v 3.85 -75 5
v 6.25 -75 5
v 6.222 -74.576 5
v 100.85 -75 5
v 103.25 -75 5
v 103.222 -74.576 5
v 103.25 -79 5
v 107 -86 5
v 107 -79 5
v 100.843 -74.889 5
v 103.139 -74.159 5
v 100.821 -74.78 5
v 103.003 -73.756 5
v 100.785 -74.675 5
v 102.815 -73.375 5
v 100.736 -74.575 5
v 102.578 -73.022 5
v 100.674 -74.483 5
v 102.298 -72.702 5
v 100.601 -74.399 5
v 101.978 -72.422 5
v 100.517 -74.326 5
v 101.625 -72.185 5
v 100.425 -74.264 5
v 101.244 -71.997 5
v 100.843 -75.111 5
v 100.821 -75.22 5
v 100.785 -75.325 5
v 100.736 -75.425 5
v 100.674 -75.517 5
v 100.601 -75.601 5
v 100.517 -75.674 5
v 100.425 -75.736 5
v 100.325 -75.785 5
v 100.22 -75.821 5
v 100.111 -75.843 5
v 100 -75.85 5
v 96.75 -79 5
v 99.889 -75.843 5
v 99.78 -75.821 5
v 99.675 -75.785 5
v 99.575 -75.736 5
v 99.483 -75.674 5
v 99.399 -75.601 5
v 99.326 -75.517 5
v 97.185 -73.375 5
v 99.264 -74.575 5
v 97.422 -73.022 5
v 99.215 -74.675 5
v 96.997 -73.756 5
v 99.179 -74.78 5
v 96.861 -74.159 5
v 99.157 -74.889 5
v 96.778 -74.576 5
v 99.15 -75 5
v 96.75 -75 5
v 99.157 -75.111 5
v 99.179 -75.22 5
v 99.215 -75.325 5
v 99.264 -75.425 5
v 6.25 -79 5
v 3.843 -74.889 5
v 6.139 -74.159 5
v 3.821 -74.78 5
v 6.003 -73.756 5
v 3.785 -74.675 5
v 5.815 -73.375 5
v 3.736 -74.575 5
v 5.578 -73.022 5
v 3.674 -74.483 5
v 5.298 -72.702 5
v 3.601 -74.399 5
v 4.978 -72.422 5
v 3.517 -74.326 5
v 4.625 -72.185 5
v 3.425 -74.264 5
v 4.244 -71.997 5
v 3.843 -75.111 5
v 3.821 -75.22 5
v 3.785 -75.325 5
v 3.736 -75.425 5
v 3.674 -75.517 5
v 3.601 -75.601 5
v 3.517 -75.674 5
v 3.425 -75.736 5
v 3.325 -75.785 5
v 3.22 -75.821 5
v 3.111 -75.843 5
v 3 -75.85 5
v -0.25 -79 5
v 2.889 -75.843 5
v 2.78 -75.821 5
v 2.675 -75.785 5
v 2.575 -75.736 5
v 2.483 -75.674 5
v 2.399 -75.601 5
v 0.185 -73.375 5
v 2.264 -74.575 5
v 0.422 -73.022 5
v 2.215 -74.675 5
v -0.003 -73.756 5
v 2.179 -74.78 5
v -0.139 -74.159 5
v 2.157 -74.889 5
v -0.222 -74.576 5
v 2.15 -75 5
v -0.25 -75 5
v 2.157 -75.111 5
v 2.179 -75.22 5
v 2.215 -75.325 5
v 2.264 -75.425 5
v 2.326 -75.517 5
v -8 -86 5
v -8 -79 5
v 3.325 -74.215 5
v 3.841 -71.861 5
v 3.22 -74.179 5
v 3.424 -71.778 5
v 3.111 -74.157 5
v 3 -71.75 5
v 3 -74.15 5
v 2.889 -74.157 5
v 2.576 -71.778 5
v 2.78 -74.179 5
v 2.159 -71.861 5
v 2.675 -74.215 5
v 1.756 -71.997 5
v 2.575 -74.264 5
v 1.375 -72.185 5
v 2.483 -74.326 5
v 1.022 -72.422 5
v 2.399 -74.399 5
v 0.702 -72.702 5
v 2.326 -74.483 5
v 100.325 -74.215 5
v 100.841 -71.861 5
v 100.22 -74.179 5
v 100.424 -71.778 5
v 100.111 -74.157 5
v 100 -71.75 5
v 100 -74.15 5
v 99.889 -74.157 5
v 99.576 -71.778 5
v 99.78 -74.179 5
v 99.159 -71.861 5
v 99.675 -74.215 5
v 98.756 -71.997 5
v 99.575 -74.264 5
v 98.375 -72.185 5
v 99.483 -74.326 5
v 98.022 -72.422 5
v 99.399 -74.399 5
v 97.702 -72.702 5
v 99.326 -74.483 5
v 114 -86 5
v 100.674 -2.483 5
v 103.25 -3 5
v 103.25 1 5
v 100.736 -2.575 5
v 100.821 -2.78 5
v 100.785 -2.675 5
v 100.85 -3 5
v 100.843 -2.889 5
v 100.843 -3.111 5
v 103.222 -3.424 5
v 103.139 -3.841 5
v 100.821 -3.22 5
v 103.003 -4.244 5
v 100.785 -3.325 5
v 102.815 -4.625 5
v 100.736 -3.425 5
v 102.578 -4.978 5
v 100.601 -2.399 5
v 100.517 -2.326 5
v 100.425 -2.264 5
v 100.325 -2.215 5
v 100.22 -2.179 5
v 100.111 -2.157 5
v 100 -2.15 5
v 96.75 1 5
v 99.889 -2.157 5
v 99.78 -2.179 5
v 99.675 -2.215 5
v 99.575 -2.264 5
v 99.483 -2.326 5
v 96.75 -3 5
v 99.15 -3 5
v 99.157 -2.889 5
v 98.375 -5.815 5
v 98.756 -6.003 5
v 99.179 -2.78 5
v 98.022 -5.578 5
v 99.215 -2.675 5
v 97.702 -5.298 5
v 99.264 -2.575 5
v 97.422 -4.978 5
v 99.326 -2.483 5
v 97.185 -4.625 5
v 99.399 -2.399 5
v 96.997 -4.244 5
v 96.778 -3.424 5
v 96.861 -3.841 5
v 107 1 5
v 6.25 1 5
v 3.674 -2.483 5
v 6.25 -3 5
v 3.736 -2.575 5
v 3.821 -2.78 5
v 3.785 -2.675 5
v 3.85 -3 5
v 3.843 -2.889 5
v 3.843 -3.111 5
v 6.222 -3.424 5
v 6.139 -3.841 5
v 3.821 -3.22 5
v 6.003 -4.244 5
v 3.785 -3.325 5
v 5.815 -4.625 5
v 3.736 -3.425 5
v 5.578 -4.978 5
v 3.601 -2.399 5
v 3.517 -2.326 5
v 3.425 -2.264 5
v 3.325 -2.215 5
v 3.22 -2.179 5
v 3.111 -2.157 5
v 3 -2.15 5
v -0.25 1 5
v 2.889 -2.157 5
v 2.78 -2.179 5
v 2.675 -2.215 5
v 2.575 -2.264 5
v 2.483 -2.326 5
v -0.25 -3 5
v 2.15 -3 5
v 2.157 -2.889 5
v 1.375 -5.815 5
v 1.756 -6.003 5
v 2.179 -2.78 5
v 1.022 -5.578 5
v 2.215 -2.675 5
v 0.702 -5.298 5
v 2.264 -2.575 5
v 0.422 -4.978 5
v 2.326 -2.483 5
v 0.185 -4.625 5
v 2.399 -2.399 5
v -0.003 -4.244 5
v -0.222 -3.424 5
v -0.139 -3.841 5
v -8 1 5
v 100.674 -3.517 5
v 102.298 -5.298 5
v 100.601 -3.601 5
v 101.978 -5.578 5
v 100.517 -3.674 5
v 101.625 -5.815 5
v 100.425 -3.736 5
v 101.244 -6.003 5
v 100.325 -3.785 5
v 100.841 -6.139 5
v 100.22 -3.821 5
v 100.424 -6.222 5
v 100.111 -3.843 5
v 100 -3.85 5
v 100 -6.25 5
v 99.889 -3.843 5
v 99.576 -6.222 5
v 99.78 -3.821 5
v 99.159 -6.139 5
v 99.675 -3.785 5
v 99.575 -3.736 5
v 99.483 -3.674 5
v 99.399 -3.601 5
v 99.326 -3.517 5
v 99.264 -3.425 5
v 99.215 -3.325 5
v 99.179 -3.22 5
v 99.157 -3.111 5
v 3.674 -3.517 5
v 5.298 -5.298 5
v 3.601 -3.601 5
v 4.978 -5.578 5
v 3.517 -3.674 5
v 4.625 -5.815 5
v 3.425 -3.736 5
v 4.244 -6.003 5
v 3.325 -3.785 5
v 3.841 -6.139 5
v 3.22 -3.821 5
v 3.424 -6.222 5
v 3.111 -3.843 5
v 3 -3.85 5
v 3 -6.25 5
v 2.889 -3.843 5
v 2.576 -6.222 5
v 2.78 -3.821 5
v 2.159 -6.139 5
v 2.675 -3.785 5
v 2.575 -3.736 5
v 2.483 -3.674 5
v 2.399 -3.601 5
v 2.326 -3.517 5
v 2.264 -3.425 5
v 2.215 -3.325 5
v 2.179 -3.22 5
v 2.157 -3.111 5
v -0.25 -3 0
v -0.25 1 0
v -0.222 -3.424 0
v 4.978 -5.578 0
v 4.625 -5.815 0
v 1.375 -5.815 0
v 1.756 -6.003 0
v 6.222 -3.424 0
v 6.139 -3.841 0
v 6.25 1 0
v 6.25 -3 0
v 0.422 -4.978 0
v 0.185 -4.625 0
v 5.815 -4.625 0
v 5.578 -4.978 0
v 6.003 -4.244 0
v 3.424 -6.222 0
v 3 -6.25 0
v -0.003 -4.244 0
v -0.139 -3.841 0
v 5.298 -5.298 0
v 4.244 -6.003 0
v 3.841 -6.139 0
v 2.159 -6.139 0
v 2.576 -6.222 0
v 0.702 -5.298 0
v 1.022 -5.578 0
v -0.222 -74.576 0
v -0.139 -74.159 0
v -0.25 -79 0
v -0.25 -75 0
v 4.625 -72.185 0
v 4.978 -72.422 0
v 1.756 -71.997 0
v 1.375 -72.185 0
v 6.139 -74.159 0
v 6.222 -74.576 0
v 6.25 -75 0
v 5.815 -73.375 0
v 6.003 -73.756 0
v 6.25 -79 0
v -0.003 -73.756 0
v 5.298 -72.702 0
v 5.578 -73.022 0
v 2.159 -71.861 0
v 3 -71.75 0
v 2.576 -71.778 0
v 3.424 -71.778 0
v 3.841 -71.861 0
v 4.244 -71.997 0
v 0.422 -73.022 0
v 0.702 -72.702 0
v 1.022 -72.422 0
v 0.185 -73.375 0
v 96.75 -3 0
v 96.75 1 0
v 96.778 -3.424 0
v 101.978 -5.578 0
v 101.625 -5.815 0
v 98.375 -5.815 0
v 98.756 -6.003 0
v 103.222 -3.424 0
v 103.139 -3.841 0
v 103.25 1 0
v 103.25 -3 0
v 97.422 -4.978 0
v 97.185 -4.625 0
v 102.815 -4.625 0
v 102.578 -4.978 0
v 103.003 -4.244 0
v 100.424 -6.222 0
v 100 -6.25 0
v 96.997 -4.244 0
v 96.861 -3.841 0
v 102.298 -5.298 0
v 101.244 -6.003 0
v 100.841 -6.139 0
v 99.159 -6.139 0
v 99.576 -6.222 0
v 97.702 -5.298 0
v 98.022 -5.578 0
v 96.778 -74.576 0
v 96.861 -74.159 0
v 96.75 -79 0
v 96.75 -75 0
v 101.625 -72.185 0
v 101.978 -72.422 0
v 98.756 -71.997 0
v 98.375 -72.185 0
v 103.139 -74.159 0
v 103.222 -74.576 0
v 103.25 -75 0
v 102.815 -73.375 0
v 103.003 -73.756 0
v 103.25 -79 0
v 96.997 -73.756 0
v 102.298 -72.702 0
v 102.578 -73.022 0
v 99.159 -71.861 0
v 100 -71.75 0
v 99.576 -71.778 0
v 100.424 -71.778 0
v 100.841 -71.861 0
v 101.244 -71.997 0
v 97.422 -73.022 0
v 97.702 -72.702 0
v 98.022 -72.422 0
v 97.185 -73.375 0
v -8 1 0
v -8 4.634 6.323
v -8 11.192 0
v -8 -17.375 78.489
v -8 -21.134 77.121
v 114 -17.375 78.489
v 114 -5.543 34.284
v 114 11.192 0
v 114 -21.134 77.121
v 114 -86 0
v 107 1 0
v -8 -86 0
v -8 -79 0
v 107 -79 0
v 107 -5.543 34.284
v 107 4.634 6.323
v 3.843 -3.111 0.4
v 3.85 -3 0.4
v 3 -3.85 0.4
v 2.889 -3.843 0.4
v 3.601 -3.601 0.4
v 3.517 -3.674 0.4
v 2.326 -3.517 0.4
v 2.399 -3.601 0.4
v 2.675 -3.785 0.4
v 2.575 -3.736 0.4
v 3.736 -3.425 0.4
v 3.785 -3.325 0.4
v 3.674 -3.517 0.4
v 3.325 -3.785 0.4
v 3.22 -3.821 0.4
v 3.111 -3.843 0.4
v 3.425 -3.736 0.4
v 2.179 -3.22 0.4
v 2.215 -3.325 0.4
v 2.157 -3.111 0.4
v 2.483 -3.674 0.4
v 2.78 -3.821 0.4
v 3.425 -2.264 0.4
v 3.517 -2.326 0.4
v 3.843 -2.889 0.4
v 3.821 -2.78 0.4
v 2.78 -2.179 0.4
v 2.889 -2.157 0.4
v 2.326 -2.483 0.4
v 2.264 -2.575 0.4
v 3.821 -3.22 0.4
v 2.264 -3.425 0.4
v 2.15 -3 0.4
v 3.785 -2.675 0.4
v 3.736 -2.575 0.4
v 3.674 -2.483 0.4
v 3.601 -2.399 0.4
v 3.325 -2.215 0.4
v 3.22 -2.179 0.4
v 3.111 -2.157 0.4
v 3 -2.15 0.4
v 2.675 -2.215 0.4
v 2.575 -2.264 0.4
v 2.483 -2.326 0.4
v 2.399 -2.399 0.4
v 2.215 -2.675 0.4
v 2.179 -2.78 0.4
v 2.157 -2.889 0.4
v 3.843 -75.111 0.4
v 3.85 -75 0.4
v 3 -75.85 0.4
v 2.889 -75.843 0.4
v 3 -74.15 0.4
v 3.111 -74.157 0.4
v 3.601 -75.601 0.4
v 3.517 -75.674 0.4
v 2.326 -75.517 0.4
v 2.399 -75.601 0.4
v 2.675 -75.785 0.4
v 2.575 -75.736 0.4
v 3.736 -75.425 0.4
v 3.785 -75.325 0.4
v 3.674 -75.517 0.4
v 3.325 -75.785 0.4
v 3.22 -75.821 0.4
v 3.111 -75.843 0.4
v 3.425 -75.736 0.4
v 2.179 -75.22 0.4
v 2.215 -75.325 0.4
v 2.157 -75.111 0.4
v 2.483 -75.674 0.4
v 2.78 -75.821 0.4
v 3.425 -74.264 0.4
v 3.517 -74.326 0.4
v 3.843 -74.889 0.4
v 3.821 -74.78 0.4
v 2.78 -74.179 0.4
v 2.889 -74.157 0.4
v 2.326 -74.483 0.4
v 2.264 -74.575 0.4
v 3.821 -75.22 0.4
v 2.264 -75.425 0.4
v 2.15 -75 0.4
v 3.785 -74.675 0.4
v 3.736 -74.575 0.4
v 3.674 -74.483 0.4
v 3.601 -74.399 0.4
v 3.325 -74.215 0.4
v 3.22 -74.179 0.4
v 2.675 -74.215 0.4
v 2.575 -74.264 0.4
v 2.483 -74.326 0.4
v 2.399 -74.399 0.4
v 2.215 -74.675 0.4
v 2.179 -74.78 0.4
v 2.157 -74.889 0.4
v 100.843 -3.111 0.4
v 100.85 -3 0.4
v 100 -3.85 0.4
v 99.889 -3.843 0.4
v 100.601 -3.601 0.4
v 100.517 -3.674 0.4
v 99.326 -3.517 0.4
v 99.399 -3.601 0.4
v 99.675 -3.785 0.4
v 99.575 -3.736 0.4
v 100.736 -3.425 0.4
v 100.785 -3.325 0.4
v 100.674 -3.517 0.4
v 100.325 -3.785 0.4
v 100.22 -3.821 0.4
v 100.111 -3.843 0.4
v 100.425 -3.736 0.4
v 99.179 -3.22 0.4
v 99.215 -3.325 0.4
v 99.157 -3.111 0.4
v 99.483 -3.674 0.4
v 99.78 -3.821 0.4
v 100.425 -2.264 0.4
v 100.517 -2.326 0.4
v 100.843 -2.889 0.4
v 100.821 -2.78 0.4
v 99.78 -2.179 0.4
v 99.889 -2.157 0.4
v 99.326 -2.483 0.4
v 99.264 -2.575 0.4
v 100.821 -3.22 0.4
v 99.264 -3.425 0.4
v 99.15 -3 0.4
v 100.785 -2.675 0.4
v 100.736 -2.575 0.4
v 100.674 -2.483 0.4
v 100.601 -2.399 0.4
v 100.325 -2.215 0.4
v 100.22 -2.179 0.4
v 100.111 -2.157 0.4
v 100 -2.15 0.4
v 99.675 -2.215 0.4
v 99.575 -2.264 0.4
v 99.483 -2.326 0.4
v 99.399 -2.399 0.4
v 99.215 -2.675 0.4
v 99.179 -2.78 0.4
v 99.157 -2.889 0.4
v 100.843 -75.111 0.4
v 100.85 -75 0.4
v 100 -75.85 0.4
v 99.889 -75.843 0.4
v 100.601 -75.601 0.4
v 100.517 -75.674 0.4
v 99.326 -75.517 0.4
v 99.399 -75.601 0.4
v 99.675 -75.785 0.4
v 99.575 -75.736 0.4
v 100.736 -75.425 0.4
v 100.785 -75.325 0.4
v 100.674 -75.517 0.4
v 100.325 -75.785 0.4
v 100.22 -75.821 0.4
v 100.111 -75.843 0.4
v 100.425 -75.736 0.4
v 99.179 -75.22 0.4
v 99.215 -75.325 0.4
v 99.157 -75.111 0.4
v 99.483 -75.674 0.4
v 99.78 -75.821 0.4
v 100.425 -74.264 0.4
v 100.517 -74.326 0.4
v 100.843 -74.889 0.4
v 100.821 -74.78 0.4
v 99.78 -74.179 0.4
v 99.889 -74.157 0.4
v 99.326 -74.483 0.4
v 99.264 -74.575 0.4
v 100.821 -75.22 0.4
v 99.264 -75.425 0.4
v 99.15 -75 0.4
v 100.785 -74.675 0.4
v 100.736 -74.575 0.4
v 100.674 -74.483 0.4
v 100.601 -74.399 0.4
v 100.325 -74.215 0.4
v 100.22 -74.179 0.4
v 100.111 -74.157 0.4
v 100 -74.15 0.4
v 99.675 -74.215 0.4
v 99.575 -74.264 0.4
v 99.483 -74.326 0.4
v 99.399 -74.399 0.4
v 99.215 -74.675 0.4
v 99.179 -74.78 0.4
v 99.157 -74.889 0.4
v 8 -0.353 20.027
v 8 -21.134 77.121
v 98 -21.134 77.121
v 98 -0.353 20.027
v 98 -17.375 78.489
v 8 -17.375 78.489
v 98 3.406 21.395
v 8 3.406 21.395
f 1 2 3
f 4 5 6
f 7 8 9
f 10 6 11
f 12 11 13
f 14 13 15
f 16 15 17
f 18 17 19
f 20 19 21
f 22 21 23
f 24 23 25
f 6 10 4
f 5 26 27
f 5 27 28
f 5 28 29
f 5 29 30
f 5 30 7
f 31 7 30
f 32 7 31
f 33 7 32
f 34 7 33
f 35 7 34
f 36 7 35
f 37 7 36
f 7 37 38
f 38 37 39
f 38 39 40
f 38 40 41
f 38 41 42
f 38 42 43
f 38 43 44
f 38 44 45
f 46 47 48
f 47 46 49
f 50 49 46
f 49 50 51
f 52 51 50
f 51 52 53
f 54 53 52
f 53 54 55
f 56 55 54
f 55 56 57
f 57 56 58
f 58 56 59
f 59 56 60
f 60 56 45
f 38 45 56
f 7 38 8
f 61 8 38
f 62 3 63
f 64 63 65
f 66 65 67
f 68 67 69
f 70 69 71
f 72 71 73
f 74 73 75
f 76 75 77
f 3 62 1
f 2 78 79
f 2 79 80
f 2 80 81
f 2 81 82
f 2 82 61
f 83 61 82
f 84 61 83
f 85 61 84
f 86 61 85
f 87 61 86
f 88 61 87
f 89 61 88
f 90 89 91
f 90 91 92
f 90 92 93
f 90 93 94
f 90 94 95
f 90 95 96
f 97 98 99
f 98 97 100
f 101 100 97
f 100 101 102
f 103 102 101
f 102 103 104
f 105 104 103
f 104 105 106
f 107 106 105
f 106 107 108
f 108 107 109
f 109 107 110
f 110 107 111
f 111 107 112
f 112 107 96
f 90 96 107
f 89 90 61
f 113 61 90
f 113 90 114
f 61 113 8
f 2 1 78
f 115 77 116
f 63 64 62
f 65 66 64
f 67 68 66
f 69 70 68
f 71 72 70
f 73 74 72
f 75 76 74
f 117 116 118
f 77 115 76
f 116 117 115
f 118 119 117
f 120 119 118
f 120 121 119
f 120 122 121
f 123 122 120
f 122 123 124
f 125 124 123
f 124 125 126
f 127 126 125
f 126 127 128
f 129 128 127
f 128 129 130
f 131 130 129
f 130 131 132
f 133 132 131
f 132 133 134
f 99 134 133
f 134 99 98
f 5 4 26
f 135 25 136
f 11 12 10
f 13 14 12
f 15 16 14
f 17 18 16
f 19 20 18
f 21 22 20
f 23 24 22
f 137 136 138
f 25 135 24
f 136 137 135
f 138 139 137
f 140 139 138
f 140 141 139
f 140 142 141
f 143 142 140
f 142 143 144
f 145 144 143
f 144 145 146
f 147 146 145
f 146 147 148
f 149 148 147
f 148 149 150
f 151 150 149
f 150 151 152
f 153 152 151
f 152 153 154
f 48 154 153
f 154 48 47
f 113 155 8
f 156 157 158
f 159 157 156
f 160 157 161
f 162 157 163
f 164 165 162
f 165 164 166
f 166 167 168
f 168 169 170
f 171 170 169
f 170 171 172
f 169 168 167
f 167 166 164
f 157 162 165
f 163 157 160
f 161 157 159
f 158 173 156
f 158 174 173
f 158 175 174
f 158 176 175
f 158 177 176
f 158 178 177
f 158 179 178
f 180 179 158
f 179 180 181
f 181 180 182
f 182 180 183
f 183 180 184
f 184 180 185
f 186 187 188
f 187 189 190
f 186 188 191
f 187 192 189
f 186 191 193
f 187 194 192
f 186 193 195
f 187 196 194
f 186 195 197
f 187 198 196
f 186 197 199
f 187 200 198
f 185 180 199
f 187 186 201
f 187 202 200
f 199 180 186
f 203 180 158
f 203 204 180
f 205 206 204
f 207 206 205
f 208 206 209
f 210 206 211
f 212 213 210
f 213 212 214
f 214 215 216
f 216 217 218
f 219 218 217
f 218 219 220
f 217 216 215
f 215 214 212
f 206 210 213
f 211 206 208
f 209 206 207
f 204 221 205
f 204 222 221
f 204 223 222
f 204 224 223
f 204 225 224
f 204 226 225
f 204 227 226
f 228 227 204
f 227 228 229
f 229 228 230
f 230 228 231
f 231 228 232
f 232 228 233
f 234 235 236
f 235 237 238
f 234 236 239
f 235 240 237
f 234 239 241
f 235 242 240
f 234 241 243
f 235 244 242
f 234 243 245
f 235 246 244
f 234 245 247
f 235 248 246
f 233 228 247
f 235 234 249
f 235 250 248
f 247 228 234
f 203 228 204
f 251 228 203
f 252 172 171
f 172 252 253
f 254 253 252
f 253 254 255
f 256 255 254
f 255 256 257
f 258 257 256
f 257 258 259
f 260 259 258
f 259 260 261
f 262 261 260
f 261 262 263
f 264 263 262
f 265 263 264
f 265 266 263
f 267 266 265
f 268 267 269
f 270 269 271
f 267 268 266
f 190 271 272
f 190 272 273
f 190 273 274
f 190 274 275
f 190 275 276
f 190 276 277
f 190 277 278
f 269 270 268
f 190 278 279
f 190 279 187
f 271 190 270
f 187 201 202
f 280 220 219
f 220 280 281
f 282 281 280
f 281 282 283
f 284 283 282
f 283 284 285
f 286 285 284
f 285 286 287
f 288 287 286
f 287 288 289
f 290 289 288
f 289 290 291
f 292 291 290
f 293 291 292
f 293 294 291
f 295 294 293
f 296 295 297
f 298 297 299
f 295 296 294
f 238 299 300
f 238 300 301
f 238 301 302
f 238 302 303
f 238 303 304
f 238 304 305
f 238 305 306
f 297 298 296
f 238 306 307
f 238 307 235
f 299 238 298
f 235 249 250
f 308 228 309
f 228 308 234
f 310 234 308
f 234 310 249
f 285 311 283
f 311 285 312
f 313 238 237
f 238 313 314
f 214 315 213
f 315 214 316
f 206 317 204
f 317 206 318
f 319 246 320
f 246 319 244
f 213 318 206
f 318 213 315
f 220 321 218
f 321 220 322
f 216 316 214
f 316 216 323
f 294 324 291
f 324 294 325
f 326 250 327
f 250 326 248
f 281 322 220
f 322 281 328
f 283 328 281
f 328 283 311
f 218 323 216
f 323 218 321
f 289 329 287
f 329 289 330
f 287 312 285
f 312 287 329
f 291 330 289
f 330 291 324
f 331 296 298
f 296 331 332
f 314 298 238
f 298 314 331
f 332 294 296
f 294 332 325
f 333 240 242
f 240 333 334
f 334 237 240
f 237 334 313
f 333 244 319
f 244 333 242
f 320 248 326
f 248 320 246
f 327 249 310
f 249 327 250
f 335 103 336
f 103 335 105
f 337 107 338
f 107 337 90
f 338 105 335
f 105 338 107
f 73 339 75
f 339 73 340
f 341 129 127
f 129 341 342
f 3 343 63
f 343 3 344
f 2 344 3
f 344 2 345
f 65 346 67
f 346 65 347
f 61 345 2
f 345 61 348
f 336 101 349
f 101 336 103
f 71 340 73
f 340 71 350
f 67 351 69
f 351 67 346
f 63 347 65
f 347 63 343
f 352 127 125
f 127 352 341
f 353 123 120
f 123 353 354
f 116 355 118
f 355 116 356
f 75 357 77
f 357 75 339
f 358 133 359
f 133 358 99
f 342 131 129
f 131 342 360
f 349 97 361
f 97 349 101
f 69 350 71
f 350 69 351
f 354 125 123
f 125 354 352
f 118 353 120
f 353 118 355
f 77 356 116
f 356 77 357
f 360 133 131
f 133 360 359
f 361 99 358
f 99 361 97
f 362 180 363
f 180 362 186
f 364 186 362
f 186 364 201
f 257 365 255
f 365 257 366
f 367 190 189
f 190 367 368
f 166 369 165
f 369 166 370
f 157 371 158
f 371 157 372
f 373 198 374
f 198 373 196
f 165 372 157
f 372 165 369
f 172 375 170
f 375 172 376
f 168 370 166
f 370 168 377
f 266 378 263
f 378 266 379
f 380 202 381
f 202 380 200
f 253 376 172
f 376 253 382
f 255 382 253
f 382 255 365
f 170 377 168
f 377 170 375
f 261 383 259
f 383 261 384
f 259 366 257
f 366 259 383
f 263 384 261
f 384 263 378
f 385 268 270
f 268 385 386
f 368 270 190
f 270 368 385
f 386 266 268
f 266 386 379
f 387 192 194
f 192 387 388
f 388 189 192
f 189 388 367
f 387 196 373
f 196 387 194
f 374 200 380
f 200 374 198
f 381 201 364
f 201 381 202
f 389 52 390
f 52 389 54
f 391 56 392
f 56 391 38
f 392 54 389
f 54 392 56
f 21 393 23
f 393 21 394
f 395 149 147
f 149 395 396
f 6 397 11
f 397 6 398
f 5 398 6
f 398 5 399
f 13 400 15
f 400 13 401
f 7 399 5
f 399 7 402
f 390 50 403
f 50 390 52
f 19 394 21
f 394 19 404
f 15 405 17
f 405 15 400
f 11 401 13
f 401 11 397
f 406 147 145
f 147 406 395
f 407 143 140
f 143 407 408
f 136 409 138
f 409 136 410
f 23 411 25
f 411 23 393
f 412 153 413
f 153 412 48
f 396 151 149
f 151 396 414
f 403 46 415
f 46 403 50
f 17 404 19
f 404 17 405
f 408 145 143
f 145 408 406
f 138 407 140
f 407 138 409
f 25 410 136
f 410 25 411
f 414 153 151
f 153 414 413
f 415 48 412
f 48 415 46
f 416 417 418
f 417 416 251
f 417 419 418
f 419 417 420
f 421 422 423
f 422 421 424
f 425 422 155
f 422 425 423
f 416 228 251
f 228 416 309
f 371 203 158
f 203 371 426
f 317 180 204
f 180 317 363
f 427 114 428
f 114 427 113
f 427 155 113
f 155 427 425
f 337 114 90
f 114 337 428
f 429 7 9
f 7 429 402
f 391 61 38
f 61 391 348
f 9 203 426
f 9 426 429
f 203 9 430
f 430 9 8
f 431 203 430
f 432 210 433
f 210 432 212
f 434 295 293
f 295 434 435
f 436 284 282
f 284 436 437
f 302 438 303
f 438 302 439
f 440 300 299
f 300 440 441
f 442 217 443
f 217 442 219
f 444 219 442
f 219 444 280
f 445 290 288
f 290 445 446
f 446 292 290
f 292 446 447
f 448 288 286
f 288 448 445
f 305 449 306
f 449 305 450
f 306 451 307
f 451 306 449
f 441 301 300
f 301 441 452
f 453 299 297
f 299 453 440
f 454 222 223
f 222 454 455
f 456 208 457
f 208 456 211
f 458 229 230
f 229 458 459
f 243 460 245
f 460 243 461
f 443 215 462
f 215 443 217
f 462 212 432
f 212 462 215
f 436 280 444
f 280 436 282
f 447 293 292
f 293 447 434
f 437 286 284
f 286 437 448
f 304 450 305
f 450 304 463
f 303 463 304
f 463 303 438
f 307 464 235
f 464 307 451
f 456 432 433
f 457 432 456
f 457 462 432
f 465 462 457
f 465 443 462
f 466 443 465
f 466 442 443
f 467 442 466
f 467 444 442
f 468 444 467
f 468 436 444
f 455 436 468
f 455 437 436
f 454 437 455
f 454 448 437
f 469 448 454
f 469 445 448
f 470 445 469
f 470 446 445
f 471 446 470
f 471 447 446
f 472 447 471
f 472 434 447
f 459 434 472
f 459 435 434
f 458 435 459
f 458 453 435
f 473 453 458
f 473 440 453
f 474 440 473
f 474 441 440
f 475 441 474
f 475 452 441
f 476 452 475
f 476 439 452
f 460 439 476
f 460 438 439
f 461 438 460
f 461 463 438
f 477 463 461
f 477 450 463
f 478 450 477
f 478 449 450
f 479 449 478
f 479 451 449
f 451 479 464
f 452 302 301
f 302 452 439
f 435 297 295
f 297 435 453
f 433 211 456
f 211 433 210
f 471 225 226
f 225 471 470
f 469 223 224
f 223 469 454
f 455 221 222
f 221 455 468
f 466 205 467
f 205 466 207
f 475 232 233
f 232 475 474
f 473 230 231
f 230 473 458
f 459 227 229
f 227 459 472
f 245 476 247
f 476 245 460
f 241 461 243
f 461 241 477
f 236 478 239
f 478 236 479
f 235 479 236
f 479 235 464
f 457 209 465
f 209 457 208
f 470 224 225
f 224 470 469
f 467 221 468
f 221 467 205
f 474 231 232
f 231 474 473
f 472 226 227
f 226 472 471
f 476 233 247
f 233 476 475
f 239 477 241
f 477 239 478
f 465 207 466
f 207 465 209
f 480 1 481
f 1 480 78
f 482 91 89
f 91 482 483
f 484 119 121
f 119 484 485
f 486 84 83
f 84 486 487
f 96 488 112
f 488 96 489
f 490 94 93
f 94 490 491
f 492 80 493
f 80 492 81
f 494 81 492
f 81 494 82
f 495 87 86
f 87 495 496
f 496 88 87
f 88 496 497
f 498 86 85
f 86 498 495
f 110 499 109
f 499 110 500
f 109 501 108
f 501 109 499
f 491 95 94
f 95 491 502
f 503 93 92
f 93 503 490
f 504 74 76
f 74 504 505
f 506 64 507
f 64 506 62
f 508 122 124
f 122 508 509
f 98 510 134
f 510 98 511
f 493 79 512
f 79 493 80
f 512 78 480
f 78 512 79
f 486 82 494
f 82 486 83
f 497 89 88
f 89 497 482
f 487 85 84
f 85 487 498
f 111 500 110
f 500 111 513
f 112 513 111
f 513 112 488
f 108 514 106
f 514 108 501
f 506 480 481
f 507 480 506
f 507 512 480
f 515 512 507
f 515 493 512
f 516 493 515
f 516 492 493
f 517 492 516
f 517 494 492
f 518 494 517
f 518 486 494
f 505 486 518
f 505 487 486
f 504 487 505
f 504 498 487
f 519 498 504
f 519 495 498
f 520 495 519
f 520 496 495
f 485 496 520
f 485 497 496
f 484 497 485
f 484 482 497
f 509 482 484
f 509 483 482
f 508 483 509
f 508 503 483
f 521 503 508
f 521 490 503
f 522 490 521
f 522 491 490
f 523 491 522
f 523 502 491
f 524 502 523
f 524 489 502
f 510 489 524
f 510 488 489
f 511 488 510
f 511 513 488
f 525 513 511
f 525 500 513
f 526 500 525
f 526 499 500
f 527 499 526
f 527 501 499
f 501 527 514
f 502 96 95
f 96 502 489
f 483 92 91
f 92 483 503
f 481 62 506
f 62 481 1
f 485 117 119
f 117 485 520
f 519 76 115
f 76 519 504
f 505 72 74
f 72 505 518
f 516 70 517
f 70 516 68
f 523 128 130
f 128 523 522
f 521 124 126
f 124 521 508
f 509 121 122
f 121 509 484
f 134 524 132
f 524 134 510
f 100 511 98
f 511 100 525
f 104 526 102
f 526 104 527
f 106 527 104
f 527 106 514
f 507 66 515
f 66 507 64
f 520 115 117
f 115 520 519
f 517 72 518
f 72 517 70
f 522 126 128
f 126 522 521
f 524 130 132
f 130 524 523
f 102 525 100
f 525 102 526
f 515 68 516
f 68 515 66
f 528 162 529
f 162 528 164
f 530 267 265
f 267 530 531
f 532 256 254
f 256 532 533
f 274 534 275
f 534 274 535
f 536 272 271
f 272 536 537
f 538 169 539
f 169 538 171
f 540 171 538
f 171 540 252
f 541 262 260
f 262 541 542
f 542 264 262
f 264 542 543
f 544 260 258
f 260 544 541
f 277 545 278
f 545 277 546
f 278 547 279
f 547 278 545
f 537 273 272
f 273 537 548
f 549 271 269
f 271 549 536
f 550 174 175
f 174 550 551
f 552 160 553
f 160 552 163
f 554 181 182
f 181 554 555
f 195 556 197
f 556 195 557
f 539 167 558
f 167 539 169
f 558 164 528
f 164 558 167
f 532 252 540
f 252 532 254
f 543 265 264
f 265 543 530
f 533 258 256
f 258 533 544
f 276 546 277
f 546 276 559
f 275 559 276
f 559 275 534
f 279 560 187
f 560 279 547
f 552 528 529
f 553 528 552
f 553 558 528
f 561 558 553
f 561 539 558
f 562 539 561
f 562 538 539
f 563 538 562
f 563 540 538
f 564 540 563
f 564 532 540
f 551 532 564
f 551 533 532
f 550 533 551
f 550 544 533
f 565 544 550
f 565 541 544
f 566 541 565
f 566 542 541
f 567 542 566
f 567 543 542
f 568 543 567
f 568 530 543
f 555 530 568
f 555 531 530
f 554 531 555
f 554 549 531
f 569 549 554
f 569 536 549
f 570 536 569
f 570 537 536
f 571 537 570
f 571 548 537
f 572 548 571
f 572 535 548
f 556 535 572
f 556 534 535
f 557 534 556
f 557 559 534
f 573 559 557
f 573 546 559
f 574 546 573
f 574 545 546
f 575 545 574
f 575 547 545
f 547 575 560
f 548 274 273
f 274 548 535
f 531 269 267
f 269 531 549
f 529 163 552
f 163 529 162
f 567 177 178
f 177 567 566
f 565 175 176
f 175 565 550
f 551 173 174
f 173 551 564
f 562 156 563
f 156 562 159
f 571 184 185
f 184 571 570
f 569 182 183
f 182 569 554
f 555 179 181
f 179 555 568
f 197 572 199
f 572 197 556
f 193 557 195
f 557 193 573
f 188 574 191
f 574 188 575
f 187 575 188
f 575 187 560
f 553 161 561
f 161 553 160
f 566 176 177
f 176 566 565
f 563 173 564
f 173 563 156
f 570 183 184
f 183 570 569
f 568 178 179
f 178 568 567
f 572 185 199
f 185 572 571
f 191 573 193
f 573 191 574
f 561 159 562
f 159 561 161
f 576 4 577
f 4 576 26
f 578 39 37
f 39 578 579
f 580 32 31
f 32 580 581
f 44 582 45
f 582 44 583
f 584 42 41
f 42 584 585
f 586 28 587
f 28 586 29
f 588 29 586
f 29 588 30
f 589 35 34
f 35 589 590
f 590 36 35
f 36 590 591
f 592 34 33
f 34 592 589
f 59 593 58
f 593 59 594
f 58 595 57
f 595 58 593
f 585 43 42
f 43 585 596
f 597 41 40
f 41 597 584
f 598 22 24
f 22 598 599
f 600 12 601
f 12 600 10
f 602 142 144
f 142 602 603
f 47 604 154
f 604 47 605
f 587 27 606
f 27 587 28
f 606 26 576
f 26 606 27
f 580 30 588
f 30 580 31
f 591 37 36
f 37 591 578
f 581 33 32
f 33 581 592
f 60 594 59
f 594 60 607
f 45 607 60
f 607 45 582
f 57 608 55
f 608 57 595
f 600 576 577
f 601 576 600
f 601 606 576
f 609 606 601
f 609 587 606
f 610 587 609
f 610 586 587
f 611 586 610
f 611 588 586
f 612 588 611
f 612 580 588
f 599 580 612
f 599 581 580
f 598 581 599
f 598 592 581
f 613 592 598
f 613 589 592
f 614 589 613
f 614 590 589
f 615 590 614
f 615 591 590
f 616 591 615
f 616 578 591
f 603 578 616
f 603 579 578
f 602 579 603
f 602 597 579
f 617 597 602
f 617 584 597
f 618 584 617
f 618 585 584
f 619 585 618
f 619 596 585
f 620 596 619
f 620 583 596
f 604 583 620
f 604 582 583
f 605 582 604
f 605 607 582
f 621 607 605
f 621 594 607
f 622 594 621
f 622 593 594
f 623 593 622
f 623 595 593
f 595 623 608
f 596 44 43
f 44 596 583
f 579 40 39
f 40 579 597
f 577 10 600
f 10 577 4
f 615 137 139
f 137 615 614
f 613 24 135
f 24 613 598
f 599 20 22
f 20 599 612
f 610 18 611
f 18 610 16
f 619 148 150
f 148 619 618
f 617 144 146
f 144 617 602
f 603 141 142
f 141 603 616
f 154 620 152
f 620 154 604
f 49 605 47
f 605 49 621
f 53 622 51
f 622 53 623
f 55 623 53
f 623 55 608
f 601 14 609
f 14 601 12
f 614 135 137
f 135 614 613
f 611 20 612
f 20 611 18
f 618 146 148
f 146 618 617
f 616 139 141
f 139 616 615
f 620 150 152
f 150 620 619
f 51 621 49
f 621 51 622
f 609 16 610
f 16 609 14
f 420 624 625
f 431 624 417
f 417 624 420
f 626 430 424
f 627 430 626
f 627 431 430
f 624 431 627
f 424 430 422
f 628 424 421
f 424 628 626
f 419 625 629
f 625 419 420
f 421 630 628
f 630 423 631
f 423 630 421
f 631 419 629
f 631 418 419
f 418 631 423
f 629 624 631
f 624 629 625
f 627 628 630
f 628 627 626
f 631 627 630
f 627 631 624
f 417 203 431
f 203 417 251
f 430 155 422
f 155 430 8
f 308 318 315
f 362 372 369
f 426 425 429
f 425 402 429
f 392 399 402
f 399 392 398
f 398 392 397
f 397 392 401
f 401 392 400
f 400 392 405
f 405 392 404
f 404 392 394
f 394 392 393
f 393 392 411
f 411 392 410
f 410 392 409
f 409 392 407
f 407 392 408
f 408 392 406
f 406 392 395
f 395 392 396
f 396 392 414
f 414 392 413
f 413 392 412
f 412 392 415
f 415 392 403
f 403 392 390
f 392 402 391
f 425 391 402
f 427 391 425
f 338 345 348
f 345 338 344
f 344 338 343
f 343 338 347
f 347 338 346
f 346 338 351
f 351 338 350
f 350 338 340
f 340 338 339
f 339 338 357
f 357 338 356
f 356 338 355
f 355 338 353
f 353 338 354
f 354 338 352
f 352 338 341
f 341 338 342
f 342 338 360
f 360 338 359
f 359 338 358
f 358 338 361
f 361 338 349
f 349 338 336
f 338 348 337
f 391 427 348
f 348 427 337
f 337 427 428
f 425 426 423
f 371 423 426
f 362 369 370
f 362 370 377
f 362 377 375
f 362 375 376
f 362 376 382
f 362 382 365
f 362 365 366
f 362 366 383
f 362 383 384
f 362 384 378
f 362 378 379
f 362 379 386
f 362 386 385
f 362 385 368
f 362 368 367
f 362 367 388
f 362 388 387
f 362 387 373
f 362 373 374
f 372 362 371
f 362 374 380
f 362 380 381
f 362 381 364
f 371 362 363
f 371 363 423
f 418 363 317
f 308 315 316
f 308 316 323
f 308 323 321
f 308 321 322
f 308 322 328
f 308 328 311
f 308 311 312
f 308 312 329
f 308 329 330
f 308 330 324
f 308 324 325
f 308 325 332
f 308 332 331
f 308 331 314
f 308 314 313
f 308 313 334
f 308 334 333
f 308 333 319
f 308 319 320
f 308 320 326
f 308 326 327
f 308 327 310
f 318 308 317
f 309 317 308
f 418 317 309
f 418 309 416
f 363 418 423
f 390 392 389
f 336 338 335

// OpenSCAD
// A desk stand for the Pimoroni Inky Impression 4.0" (Spectra 6).
//
// A thin frame around the panel, leaning back on a base. The panel screws
// on from behind through its four M2 corner holes into the frame's corner
// tabs; the tabs cover only the corners, which are clear (the screen starts
// 7 mm in). Everywhere else the frame stays outside the board's outline, so
// whatever is on the back (the Hack3r, a ribbon plug) can't hit it. The
// buttons' side is left open, and the other side leaves room for the
// display's ribbon, which bends around that edge.
//
// Dimensions from Pimoroni's drawing: board 103 x 78 mm, holes 3 mm in from
// each corner, buttons on the left edge 17.85-60.15 mm up from the bottom.
//
// Printing: `layout = "print"` (the default, what the STL is) lies on the
// frame's front face; everything else rises from it, leaning at most `tilt`
// past vertical, so it needs no supports. `layout = "desk"` shows it standing.
// Screws: four M2 x 6 mm, from behind; they cut their own thread.

/* [Panel] */
board_w = 103;
board_h = 78;
board_t = 1.6;
hole_inset = 3;         // corner hole centres, from both edges
buttons_side = "left";  // as you look at the screen; this side stays open

/* [Stand] */
layout = "print";       // "print" or "desk"
tilt = 20;              // leans back this far from upright
frame_t = 5;            // frame thickness; the screws go 4.4 mm into it
rail_w = 7;             // frame rail width
gap = 1;                // clearance around the board
ribbon_gap = 4;         // clearance on the display ribbon's side (it bends around the edge)
tab_d = 6.5;            // corner tabs; the screen starts 7 mm in
pilot_d = 1.7;          // M2 self-tapping into PLA/PETG
pilot_depth = 4.6;      // blind, from behind: leaves a skin on the front
base_t = 4;
base_depth = 75;        // front to back
arm_w = 16;             // the base's side arms; the middle is open for the cable
front_bar = 18;         // the base's front strip, under the frame
lift = 3;               // the frame's lowest edge sits this high off the desk

$fn = 48;

holes = [for (x = [hole_inset, board_w - hole_inset], y = [hole_inset, board_h - hole_inset]) [x, y]];

// --- panel space: x right, y up, z towards you. The board's front is at
// z = 0 and its back at -board_t; the frame lies in front, from 0 to frame_t.

x_lo = -gap - rail_w;                   // the open (buttons') side has no rail
x_hi = board_w + ribbon_gap + rail_w;
y_lo = -gap - rail_w;
y_hi = board_h + gap + rail_w;

bottom_rail = [[x_lo, y_lo], [x_hi, y_lo], [x_hi, -gap], [x_lo, -gap]];
top_rail = [[x_lo, board_h + gap], [x_hi, board_h + gap], [x_hi, y_hi], [x_lo, y_hi]];
side_rail = [[board_w + ribbon_gap, y_lo], [x_hi, y_lo], [x_hi, y_hi], [board_w + ribbon_gap, y_hi]];

module slab(pts) {
    linear_extrude(frame_t) polygon(pts);
}

module corner_tab(h) {
    // From the rail over the board's corner to the hole, and no further.
    edge_y = h[1] < board_h / 2 ? -gap - 0.01 : board_h + gap + 0.01;
    linear_extrude(frame_t) hull() {
        translate(h) circle(d = tab_d);
        translate([h[0] - tab_d / 2, edge_y]) square([tab_d, 0.02]);
    }
}

module frame() {
    difference() {
        union() {
            slab(bottom_rail);
            slab(top_rail);
            slab(side_rail);
            for (h = holes) corner_tab(h);
        }
        for (h = holes) translate([h[0], h[1], -1]) cylinder(d = pilot_d, h = pilot_depth + 1);
    }
}

// --- standing it up: panel y becomes up and panel z towards you (-y),
// leaning back by `tilt`, with the frame's lowest edge `lift` off the desk.

drop = -y_lo * cos(tilt) - frame_t * sin(tilt);

module stood() {
    translate([0, 0, drop + lift]) rotate([-tilt, 0, 0]) rotate([90, 0, 0]) children();
}

module unstood() {
    rotate([-90, 0, 0]) rotate([tilt, 0, 0]) translate([0, 0, -drop - lift]) children();
}

module to_desk(pts) {
    // A part of the frame, filled straight down to the desk.
    hull() {
        stood() slab(pts);
        linear_extrude(0.01) projection() stood() slab(pts);
    }
}

module base() {
    y0 = -50;   // well in front; trimmed to the frame's front face below
    difference() {
        translate([x_lo, y0, 0]) cube([x_hi - x_lo, base_depth - y0, base_t]);
        translate([x_lo + arm_w, -(frame_t - 1) * cos(tilt) + front_bar, -1])
            cube([x_hi - x_lo - 2 * arm_w, base_depth, base_t + 2]);
    }
}

module standing() {
    intersection() {
        union() {
            stood() frame();
            to_desk(bottom_rail);
            to_desk(side_rail);
            base();
        }
        // Nothing in front of the frame's face, so it lies flat to print.
        stood() translate([x_lo - 50, y_lo - 100, -200]) cube([x_hi - x_lo + 100, 400, 200 + frame_t]);
    }
}

module side(flip) {
    if (flip) translate([board_w, 0, 0]) mirror([1, 0, 0]) children();
    else children();
}

side(buttons_side == "right") {
    if (layout == "desk") {
        standing();
        // The board, for checking the fit (preview only, not exported).
        %stood() translate([0, 0, -board_t]) cube([board_w, board_h, board_t]);
    } else {
        translate([0, 0, frame_t]) rotate([180, 0, 0]) unstood() standing();
    }
}
